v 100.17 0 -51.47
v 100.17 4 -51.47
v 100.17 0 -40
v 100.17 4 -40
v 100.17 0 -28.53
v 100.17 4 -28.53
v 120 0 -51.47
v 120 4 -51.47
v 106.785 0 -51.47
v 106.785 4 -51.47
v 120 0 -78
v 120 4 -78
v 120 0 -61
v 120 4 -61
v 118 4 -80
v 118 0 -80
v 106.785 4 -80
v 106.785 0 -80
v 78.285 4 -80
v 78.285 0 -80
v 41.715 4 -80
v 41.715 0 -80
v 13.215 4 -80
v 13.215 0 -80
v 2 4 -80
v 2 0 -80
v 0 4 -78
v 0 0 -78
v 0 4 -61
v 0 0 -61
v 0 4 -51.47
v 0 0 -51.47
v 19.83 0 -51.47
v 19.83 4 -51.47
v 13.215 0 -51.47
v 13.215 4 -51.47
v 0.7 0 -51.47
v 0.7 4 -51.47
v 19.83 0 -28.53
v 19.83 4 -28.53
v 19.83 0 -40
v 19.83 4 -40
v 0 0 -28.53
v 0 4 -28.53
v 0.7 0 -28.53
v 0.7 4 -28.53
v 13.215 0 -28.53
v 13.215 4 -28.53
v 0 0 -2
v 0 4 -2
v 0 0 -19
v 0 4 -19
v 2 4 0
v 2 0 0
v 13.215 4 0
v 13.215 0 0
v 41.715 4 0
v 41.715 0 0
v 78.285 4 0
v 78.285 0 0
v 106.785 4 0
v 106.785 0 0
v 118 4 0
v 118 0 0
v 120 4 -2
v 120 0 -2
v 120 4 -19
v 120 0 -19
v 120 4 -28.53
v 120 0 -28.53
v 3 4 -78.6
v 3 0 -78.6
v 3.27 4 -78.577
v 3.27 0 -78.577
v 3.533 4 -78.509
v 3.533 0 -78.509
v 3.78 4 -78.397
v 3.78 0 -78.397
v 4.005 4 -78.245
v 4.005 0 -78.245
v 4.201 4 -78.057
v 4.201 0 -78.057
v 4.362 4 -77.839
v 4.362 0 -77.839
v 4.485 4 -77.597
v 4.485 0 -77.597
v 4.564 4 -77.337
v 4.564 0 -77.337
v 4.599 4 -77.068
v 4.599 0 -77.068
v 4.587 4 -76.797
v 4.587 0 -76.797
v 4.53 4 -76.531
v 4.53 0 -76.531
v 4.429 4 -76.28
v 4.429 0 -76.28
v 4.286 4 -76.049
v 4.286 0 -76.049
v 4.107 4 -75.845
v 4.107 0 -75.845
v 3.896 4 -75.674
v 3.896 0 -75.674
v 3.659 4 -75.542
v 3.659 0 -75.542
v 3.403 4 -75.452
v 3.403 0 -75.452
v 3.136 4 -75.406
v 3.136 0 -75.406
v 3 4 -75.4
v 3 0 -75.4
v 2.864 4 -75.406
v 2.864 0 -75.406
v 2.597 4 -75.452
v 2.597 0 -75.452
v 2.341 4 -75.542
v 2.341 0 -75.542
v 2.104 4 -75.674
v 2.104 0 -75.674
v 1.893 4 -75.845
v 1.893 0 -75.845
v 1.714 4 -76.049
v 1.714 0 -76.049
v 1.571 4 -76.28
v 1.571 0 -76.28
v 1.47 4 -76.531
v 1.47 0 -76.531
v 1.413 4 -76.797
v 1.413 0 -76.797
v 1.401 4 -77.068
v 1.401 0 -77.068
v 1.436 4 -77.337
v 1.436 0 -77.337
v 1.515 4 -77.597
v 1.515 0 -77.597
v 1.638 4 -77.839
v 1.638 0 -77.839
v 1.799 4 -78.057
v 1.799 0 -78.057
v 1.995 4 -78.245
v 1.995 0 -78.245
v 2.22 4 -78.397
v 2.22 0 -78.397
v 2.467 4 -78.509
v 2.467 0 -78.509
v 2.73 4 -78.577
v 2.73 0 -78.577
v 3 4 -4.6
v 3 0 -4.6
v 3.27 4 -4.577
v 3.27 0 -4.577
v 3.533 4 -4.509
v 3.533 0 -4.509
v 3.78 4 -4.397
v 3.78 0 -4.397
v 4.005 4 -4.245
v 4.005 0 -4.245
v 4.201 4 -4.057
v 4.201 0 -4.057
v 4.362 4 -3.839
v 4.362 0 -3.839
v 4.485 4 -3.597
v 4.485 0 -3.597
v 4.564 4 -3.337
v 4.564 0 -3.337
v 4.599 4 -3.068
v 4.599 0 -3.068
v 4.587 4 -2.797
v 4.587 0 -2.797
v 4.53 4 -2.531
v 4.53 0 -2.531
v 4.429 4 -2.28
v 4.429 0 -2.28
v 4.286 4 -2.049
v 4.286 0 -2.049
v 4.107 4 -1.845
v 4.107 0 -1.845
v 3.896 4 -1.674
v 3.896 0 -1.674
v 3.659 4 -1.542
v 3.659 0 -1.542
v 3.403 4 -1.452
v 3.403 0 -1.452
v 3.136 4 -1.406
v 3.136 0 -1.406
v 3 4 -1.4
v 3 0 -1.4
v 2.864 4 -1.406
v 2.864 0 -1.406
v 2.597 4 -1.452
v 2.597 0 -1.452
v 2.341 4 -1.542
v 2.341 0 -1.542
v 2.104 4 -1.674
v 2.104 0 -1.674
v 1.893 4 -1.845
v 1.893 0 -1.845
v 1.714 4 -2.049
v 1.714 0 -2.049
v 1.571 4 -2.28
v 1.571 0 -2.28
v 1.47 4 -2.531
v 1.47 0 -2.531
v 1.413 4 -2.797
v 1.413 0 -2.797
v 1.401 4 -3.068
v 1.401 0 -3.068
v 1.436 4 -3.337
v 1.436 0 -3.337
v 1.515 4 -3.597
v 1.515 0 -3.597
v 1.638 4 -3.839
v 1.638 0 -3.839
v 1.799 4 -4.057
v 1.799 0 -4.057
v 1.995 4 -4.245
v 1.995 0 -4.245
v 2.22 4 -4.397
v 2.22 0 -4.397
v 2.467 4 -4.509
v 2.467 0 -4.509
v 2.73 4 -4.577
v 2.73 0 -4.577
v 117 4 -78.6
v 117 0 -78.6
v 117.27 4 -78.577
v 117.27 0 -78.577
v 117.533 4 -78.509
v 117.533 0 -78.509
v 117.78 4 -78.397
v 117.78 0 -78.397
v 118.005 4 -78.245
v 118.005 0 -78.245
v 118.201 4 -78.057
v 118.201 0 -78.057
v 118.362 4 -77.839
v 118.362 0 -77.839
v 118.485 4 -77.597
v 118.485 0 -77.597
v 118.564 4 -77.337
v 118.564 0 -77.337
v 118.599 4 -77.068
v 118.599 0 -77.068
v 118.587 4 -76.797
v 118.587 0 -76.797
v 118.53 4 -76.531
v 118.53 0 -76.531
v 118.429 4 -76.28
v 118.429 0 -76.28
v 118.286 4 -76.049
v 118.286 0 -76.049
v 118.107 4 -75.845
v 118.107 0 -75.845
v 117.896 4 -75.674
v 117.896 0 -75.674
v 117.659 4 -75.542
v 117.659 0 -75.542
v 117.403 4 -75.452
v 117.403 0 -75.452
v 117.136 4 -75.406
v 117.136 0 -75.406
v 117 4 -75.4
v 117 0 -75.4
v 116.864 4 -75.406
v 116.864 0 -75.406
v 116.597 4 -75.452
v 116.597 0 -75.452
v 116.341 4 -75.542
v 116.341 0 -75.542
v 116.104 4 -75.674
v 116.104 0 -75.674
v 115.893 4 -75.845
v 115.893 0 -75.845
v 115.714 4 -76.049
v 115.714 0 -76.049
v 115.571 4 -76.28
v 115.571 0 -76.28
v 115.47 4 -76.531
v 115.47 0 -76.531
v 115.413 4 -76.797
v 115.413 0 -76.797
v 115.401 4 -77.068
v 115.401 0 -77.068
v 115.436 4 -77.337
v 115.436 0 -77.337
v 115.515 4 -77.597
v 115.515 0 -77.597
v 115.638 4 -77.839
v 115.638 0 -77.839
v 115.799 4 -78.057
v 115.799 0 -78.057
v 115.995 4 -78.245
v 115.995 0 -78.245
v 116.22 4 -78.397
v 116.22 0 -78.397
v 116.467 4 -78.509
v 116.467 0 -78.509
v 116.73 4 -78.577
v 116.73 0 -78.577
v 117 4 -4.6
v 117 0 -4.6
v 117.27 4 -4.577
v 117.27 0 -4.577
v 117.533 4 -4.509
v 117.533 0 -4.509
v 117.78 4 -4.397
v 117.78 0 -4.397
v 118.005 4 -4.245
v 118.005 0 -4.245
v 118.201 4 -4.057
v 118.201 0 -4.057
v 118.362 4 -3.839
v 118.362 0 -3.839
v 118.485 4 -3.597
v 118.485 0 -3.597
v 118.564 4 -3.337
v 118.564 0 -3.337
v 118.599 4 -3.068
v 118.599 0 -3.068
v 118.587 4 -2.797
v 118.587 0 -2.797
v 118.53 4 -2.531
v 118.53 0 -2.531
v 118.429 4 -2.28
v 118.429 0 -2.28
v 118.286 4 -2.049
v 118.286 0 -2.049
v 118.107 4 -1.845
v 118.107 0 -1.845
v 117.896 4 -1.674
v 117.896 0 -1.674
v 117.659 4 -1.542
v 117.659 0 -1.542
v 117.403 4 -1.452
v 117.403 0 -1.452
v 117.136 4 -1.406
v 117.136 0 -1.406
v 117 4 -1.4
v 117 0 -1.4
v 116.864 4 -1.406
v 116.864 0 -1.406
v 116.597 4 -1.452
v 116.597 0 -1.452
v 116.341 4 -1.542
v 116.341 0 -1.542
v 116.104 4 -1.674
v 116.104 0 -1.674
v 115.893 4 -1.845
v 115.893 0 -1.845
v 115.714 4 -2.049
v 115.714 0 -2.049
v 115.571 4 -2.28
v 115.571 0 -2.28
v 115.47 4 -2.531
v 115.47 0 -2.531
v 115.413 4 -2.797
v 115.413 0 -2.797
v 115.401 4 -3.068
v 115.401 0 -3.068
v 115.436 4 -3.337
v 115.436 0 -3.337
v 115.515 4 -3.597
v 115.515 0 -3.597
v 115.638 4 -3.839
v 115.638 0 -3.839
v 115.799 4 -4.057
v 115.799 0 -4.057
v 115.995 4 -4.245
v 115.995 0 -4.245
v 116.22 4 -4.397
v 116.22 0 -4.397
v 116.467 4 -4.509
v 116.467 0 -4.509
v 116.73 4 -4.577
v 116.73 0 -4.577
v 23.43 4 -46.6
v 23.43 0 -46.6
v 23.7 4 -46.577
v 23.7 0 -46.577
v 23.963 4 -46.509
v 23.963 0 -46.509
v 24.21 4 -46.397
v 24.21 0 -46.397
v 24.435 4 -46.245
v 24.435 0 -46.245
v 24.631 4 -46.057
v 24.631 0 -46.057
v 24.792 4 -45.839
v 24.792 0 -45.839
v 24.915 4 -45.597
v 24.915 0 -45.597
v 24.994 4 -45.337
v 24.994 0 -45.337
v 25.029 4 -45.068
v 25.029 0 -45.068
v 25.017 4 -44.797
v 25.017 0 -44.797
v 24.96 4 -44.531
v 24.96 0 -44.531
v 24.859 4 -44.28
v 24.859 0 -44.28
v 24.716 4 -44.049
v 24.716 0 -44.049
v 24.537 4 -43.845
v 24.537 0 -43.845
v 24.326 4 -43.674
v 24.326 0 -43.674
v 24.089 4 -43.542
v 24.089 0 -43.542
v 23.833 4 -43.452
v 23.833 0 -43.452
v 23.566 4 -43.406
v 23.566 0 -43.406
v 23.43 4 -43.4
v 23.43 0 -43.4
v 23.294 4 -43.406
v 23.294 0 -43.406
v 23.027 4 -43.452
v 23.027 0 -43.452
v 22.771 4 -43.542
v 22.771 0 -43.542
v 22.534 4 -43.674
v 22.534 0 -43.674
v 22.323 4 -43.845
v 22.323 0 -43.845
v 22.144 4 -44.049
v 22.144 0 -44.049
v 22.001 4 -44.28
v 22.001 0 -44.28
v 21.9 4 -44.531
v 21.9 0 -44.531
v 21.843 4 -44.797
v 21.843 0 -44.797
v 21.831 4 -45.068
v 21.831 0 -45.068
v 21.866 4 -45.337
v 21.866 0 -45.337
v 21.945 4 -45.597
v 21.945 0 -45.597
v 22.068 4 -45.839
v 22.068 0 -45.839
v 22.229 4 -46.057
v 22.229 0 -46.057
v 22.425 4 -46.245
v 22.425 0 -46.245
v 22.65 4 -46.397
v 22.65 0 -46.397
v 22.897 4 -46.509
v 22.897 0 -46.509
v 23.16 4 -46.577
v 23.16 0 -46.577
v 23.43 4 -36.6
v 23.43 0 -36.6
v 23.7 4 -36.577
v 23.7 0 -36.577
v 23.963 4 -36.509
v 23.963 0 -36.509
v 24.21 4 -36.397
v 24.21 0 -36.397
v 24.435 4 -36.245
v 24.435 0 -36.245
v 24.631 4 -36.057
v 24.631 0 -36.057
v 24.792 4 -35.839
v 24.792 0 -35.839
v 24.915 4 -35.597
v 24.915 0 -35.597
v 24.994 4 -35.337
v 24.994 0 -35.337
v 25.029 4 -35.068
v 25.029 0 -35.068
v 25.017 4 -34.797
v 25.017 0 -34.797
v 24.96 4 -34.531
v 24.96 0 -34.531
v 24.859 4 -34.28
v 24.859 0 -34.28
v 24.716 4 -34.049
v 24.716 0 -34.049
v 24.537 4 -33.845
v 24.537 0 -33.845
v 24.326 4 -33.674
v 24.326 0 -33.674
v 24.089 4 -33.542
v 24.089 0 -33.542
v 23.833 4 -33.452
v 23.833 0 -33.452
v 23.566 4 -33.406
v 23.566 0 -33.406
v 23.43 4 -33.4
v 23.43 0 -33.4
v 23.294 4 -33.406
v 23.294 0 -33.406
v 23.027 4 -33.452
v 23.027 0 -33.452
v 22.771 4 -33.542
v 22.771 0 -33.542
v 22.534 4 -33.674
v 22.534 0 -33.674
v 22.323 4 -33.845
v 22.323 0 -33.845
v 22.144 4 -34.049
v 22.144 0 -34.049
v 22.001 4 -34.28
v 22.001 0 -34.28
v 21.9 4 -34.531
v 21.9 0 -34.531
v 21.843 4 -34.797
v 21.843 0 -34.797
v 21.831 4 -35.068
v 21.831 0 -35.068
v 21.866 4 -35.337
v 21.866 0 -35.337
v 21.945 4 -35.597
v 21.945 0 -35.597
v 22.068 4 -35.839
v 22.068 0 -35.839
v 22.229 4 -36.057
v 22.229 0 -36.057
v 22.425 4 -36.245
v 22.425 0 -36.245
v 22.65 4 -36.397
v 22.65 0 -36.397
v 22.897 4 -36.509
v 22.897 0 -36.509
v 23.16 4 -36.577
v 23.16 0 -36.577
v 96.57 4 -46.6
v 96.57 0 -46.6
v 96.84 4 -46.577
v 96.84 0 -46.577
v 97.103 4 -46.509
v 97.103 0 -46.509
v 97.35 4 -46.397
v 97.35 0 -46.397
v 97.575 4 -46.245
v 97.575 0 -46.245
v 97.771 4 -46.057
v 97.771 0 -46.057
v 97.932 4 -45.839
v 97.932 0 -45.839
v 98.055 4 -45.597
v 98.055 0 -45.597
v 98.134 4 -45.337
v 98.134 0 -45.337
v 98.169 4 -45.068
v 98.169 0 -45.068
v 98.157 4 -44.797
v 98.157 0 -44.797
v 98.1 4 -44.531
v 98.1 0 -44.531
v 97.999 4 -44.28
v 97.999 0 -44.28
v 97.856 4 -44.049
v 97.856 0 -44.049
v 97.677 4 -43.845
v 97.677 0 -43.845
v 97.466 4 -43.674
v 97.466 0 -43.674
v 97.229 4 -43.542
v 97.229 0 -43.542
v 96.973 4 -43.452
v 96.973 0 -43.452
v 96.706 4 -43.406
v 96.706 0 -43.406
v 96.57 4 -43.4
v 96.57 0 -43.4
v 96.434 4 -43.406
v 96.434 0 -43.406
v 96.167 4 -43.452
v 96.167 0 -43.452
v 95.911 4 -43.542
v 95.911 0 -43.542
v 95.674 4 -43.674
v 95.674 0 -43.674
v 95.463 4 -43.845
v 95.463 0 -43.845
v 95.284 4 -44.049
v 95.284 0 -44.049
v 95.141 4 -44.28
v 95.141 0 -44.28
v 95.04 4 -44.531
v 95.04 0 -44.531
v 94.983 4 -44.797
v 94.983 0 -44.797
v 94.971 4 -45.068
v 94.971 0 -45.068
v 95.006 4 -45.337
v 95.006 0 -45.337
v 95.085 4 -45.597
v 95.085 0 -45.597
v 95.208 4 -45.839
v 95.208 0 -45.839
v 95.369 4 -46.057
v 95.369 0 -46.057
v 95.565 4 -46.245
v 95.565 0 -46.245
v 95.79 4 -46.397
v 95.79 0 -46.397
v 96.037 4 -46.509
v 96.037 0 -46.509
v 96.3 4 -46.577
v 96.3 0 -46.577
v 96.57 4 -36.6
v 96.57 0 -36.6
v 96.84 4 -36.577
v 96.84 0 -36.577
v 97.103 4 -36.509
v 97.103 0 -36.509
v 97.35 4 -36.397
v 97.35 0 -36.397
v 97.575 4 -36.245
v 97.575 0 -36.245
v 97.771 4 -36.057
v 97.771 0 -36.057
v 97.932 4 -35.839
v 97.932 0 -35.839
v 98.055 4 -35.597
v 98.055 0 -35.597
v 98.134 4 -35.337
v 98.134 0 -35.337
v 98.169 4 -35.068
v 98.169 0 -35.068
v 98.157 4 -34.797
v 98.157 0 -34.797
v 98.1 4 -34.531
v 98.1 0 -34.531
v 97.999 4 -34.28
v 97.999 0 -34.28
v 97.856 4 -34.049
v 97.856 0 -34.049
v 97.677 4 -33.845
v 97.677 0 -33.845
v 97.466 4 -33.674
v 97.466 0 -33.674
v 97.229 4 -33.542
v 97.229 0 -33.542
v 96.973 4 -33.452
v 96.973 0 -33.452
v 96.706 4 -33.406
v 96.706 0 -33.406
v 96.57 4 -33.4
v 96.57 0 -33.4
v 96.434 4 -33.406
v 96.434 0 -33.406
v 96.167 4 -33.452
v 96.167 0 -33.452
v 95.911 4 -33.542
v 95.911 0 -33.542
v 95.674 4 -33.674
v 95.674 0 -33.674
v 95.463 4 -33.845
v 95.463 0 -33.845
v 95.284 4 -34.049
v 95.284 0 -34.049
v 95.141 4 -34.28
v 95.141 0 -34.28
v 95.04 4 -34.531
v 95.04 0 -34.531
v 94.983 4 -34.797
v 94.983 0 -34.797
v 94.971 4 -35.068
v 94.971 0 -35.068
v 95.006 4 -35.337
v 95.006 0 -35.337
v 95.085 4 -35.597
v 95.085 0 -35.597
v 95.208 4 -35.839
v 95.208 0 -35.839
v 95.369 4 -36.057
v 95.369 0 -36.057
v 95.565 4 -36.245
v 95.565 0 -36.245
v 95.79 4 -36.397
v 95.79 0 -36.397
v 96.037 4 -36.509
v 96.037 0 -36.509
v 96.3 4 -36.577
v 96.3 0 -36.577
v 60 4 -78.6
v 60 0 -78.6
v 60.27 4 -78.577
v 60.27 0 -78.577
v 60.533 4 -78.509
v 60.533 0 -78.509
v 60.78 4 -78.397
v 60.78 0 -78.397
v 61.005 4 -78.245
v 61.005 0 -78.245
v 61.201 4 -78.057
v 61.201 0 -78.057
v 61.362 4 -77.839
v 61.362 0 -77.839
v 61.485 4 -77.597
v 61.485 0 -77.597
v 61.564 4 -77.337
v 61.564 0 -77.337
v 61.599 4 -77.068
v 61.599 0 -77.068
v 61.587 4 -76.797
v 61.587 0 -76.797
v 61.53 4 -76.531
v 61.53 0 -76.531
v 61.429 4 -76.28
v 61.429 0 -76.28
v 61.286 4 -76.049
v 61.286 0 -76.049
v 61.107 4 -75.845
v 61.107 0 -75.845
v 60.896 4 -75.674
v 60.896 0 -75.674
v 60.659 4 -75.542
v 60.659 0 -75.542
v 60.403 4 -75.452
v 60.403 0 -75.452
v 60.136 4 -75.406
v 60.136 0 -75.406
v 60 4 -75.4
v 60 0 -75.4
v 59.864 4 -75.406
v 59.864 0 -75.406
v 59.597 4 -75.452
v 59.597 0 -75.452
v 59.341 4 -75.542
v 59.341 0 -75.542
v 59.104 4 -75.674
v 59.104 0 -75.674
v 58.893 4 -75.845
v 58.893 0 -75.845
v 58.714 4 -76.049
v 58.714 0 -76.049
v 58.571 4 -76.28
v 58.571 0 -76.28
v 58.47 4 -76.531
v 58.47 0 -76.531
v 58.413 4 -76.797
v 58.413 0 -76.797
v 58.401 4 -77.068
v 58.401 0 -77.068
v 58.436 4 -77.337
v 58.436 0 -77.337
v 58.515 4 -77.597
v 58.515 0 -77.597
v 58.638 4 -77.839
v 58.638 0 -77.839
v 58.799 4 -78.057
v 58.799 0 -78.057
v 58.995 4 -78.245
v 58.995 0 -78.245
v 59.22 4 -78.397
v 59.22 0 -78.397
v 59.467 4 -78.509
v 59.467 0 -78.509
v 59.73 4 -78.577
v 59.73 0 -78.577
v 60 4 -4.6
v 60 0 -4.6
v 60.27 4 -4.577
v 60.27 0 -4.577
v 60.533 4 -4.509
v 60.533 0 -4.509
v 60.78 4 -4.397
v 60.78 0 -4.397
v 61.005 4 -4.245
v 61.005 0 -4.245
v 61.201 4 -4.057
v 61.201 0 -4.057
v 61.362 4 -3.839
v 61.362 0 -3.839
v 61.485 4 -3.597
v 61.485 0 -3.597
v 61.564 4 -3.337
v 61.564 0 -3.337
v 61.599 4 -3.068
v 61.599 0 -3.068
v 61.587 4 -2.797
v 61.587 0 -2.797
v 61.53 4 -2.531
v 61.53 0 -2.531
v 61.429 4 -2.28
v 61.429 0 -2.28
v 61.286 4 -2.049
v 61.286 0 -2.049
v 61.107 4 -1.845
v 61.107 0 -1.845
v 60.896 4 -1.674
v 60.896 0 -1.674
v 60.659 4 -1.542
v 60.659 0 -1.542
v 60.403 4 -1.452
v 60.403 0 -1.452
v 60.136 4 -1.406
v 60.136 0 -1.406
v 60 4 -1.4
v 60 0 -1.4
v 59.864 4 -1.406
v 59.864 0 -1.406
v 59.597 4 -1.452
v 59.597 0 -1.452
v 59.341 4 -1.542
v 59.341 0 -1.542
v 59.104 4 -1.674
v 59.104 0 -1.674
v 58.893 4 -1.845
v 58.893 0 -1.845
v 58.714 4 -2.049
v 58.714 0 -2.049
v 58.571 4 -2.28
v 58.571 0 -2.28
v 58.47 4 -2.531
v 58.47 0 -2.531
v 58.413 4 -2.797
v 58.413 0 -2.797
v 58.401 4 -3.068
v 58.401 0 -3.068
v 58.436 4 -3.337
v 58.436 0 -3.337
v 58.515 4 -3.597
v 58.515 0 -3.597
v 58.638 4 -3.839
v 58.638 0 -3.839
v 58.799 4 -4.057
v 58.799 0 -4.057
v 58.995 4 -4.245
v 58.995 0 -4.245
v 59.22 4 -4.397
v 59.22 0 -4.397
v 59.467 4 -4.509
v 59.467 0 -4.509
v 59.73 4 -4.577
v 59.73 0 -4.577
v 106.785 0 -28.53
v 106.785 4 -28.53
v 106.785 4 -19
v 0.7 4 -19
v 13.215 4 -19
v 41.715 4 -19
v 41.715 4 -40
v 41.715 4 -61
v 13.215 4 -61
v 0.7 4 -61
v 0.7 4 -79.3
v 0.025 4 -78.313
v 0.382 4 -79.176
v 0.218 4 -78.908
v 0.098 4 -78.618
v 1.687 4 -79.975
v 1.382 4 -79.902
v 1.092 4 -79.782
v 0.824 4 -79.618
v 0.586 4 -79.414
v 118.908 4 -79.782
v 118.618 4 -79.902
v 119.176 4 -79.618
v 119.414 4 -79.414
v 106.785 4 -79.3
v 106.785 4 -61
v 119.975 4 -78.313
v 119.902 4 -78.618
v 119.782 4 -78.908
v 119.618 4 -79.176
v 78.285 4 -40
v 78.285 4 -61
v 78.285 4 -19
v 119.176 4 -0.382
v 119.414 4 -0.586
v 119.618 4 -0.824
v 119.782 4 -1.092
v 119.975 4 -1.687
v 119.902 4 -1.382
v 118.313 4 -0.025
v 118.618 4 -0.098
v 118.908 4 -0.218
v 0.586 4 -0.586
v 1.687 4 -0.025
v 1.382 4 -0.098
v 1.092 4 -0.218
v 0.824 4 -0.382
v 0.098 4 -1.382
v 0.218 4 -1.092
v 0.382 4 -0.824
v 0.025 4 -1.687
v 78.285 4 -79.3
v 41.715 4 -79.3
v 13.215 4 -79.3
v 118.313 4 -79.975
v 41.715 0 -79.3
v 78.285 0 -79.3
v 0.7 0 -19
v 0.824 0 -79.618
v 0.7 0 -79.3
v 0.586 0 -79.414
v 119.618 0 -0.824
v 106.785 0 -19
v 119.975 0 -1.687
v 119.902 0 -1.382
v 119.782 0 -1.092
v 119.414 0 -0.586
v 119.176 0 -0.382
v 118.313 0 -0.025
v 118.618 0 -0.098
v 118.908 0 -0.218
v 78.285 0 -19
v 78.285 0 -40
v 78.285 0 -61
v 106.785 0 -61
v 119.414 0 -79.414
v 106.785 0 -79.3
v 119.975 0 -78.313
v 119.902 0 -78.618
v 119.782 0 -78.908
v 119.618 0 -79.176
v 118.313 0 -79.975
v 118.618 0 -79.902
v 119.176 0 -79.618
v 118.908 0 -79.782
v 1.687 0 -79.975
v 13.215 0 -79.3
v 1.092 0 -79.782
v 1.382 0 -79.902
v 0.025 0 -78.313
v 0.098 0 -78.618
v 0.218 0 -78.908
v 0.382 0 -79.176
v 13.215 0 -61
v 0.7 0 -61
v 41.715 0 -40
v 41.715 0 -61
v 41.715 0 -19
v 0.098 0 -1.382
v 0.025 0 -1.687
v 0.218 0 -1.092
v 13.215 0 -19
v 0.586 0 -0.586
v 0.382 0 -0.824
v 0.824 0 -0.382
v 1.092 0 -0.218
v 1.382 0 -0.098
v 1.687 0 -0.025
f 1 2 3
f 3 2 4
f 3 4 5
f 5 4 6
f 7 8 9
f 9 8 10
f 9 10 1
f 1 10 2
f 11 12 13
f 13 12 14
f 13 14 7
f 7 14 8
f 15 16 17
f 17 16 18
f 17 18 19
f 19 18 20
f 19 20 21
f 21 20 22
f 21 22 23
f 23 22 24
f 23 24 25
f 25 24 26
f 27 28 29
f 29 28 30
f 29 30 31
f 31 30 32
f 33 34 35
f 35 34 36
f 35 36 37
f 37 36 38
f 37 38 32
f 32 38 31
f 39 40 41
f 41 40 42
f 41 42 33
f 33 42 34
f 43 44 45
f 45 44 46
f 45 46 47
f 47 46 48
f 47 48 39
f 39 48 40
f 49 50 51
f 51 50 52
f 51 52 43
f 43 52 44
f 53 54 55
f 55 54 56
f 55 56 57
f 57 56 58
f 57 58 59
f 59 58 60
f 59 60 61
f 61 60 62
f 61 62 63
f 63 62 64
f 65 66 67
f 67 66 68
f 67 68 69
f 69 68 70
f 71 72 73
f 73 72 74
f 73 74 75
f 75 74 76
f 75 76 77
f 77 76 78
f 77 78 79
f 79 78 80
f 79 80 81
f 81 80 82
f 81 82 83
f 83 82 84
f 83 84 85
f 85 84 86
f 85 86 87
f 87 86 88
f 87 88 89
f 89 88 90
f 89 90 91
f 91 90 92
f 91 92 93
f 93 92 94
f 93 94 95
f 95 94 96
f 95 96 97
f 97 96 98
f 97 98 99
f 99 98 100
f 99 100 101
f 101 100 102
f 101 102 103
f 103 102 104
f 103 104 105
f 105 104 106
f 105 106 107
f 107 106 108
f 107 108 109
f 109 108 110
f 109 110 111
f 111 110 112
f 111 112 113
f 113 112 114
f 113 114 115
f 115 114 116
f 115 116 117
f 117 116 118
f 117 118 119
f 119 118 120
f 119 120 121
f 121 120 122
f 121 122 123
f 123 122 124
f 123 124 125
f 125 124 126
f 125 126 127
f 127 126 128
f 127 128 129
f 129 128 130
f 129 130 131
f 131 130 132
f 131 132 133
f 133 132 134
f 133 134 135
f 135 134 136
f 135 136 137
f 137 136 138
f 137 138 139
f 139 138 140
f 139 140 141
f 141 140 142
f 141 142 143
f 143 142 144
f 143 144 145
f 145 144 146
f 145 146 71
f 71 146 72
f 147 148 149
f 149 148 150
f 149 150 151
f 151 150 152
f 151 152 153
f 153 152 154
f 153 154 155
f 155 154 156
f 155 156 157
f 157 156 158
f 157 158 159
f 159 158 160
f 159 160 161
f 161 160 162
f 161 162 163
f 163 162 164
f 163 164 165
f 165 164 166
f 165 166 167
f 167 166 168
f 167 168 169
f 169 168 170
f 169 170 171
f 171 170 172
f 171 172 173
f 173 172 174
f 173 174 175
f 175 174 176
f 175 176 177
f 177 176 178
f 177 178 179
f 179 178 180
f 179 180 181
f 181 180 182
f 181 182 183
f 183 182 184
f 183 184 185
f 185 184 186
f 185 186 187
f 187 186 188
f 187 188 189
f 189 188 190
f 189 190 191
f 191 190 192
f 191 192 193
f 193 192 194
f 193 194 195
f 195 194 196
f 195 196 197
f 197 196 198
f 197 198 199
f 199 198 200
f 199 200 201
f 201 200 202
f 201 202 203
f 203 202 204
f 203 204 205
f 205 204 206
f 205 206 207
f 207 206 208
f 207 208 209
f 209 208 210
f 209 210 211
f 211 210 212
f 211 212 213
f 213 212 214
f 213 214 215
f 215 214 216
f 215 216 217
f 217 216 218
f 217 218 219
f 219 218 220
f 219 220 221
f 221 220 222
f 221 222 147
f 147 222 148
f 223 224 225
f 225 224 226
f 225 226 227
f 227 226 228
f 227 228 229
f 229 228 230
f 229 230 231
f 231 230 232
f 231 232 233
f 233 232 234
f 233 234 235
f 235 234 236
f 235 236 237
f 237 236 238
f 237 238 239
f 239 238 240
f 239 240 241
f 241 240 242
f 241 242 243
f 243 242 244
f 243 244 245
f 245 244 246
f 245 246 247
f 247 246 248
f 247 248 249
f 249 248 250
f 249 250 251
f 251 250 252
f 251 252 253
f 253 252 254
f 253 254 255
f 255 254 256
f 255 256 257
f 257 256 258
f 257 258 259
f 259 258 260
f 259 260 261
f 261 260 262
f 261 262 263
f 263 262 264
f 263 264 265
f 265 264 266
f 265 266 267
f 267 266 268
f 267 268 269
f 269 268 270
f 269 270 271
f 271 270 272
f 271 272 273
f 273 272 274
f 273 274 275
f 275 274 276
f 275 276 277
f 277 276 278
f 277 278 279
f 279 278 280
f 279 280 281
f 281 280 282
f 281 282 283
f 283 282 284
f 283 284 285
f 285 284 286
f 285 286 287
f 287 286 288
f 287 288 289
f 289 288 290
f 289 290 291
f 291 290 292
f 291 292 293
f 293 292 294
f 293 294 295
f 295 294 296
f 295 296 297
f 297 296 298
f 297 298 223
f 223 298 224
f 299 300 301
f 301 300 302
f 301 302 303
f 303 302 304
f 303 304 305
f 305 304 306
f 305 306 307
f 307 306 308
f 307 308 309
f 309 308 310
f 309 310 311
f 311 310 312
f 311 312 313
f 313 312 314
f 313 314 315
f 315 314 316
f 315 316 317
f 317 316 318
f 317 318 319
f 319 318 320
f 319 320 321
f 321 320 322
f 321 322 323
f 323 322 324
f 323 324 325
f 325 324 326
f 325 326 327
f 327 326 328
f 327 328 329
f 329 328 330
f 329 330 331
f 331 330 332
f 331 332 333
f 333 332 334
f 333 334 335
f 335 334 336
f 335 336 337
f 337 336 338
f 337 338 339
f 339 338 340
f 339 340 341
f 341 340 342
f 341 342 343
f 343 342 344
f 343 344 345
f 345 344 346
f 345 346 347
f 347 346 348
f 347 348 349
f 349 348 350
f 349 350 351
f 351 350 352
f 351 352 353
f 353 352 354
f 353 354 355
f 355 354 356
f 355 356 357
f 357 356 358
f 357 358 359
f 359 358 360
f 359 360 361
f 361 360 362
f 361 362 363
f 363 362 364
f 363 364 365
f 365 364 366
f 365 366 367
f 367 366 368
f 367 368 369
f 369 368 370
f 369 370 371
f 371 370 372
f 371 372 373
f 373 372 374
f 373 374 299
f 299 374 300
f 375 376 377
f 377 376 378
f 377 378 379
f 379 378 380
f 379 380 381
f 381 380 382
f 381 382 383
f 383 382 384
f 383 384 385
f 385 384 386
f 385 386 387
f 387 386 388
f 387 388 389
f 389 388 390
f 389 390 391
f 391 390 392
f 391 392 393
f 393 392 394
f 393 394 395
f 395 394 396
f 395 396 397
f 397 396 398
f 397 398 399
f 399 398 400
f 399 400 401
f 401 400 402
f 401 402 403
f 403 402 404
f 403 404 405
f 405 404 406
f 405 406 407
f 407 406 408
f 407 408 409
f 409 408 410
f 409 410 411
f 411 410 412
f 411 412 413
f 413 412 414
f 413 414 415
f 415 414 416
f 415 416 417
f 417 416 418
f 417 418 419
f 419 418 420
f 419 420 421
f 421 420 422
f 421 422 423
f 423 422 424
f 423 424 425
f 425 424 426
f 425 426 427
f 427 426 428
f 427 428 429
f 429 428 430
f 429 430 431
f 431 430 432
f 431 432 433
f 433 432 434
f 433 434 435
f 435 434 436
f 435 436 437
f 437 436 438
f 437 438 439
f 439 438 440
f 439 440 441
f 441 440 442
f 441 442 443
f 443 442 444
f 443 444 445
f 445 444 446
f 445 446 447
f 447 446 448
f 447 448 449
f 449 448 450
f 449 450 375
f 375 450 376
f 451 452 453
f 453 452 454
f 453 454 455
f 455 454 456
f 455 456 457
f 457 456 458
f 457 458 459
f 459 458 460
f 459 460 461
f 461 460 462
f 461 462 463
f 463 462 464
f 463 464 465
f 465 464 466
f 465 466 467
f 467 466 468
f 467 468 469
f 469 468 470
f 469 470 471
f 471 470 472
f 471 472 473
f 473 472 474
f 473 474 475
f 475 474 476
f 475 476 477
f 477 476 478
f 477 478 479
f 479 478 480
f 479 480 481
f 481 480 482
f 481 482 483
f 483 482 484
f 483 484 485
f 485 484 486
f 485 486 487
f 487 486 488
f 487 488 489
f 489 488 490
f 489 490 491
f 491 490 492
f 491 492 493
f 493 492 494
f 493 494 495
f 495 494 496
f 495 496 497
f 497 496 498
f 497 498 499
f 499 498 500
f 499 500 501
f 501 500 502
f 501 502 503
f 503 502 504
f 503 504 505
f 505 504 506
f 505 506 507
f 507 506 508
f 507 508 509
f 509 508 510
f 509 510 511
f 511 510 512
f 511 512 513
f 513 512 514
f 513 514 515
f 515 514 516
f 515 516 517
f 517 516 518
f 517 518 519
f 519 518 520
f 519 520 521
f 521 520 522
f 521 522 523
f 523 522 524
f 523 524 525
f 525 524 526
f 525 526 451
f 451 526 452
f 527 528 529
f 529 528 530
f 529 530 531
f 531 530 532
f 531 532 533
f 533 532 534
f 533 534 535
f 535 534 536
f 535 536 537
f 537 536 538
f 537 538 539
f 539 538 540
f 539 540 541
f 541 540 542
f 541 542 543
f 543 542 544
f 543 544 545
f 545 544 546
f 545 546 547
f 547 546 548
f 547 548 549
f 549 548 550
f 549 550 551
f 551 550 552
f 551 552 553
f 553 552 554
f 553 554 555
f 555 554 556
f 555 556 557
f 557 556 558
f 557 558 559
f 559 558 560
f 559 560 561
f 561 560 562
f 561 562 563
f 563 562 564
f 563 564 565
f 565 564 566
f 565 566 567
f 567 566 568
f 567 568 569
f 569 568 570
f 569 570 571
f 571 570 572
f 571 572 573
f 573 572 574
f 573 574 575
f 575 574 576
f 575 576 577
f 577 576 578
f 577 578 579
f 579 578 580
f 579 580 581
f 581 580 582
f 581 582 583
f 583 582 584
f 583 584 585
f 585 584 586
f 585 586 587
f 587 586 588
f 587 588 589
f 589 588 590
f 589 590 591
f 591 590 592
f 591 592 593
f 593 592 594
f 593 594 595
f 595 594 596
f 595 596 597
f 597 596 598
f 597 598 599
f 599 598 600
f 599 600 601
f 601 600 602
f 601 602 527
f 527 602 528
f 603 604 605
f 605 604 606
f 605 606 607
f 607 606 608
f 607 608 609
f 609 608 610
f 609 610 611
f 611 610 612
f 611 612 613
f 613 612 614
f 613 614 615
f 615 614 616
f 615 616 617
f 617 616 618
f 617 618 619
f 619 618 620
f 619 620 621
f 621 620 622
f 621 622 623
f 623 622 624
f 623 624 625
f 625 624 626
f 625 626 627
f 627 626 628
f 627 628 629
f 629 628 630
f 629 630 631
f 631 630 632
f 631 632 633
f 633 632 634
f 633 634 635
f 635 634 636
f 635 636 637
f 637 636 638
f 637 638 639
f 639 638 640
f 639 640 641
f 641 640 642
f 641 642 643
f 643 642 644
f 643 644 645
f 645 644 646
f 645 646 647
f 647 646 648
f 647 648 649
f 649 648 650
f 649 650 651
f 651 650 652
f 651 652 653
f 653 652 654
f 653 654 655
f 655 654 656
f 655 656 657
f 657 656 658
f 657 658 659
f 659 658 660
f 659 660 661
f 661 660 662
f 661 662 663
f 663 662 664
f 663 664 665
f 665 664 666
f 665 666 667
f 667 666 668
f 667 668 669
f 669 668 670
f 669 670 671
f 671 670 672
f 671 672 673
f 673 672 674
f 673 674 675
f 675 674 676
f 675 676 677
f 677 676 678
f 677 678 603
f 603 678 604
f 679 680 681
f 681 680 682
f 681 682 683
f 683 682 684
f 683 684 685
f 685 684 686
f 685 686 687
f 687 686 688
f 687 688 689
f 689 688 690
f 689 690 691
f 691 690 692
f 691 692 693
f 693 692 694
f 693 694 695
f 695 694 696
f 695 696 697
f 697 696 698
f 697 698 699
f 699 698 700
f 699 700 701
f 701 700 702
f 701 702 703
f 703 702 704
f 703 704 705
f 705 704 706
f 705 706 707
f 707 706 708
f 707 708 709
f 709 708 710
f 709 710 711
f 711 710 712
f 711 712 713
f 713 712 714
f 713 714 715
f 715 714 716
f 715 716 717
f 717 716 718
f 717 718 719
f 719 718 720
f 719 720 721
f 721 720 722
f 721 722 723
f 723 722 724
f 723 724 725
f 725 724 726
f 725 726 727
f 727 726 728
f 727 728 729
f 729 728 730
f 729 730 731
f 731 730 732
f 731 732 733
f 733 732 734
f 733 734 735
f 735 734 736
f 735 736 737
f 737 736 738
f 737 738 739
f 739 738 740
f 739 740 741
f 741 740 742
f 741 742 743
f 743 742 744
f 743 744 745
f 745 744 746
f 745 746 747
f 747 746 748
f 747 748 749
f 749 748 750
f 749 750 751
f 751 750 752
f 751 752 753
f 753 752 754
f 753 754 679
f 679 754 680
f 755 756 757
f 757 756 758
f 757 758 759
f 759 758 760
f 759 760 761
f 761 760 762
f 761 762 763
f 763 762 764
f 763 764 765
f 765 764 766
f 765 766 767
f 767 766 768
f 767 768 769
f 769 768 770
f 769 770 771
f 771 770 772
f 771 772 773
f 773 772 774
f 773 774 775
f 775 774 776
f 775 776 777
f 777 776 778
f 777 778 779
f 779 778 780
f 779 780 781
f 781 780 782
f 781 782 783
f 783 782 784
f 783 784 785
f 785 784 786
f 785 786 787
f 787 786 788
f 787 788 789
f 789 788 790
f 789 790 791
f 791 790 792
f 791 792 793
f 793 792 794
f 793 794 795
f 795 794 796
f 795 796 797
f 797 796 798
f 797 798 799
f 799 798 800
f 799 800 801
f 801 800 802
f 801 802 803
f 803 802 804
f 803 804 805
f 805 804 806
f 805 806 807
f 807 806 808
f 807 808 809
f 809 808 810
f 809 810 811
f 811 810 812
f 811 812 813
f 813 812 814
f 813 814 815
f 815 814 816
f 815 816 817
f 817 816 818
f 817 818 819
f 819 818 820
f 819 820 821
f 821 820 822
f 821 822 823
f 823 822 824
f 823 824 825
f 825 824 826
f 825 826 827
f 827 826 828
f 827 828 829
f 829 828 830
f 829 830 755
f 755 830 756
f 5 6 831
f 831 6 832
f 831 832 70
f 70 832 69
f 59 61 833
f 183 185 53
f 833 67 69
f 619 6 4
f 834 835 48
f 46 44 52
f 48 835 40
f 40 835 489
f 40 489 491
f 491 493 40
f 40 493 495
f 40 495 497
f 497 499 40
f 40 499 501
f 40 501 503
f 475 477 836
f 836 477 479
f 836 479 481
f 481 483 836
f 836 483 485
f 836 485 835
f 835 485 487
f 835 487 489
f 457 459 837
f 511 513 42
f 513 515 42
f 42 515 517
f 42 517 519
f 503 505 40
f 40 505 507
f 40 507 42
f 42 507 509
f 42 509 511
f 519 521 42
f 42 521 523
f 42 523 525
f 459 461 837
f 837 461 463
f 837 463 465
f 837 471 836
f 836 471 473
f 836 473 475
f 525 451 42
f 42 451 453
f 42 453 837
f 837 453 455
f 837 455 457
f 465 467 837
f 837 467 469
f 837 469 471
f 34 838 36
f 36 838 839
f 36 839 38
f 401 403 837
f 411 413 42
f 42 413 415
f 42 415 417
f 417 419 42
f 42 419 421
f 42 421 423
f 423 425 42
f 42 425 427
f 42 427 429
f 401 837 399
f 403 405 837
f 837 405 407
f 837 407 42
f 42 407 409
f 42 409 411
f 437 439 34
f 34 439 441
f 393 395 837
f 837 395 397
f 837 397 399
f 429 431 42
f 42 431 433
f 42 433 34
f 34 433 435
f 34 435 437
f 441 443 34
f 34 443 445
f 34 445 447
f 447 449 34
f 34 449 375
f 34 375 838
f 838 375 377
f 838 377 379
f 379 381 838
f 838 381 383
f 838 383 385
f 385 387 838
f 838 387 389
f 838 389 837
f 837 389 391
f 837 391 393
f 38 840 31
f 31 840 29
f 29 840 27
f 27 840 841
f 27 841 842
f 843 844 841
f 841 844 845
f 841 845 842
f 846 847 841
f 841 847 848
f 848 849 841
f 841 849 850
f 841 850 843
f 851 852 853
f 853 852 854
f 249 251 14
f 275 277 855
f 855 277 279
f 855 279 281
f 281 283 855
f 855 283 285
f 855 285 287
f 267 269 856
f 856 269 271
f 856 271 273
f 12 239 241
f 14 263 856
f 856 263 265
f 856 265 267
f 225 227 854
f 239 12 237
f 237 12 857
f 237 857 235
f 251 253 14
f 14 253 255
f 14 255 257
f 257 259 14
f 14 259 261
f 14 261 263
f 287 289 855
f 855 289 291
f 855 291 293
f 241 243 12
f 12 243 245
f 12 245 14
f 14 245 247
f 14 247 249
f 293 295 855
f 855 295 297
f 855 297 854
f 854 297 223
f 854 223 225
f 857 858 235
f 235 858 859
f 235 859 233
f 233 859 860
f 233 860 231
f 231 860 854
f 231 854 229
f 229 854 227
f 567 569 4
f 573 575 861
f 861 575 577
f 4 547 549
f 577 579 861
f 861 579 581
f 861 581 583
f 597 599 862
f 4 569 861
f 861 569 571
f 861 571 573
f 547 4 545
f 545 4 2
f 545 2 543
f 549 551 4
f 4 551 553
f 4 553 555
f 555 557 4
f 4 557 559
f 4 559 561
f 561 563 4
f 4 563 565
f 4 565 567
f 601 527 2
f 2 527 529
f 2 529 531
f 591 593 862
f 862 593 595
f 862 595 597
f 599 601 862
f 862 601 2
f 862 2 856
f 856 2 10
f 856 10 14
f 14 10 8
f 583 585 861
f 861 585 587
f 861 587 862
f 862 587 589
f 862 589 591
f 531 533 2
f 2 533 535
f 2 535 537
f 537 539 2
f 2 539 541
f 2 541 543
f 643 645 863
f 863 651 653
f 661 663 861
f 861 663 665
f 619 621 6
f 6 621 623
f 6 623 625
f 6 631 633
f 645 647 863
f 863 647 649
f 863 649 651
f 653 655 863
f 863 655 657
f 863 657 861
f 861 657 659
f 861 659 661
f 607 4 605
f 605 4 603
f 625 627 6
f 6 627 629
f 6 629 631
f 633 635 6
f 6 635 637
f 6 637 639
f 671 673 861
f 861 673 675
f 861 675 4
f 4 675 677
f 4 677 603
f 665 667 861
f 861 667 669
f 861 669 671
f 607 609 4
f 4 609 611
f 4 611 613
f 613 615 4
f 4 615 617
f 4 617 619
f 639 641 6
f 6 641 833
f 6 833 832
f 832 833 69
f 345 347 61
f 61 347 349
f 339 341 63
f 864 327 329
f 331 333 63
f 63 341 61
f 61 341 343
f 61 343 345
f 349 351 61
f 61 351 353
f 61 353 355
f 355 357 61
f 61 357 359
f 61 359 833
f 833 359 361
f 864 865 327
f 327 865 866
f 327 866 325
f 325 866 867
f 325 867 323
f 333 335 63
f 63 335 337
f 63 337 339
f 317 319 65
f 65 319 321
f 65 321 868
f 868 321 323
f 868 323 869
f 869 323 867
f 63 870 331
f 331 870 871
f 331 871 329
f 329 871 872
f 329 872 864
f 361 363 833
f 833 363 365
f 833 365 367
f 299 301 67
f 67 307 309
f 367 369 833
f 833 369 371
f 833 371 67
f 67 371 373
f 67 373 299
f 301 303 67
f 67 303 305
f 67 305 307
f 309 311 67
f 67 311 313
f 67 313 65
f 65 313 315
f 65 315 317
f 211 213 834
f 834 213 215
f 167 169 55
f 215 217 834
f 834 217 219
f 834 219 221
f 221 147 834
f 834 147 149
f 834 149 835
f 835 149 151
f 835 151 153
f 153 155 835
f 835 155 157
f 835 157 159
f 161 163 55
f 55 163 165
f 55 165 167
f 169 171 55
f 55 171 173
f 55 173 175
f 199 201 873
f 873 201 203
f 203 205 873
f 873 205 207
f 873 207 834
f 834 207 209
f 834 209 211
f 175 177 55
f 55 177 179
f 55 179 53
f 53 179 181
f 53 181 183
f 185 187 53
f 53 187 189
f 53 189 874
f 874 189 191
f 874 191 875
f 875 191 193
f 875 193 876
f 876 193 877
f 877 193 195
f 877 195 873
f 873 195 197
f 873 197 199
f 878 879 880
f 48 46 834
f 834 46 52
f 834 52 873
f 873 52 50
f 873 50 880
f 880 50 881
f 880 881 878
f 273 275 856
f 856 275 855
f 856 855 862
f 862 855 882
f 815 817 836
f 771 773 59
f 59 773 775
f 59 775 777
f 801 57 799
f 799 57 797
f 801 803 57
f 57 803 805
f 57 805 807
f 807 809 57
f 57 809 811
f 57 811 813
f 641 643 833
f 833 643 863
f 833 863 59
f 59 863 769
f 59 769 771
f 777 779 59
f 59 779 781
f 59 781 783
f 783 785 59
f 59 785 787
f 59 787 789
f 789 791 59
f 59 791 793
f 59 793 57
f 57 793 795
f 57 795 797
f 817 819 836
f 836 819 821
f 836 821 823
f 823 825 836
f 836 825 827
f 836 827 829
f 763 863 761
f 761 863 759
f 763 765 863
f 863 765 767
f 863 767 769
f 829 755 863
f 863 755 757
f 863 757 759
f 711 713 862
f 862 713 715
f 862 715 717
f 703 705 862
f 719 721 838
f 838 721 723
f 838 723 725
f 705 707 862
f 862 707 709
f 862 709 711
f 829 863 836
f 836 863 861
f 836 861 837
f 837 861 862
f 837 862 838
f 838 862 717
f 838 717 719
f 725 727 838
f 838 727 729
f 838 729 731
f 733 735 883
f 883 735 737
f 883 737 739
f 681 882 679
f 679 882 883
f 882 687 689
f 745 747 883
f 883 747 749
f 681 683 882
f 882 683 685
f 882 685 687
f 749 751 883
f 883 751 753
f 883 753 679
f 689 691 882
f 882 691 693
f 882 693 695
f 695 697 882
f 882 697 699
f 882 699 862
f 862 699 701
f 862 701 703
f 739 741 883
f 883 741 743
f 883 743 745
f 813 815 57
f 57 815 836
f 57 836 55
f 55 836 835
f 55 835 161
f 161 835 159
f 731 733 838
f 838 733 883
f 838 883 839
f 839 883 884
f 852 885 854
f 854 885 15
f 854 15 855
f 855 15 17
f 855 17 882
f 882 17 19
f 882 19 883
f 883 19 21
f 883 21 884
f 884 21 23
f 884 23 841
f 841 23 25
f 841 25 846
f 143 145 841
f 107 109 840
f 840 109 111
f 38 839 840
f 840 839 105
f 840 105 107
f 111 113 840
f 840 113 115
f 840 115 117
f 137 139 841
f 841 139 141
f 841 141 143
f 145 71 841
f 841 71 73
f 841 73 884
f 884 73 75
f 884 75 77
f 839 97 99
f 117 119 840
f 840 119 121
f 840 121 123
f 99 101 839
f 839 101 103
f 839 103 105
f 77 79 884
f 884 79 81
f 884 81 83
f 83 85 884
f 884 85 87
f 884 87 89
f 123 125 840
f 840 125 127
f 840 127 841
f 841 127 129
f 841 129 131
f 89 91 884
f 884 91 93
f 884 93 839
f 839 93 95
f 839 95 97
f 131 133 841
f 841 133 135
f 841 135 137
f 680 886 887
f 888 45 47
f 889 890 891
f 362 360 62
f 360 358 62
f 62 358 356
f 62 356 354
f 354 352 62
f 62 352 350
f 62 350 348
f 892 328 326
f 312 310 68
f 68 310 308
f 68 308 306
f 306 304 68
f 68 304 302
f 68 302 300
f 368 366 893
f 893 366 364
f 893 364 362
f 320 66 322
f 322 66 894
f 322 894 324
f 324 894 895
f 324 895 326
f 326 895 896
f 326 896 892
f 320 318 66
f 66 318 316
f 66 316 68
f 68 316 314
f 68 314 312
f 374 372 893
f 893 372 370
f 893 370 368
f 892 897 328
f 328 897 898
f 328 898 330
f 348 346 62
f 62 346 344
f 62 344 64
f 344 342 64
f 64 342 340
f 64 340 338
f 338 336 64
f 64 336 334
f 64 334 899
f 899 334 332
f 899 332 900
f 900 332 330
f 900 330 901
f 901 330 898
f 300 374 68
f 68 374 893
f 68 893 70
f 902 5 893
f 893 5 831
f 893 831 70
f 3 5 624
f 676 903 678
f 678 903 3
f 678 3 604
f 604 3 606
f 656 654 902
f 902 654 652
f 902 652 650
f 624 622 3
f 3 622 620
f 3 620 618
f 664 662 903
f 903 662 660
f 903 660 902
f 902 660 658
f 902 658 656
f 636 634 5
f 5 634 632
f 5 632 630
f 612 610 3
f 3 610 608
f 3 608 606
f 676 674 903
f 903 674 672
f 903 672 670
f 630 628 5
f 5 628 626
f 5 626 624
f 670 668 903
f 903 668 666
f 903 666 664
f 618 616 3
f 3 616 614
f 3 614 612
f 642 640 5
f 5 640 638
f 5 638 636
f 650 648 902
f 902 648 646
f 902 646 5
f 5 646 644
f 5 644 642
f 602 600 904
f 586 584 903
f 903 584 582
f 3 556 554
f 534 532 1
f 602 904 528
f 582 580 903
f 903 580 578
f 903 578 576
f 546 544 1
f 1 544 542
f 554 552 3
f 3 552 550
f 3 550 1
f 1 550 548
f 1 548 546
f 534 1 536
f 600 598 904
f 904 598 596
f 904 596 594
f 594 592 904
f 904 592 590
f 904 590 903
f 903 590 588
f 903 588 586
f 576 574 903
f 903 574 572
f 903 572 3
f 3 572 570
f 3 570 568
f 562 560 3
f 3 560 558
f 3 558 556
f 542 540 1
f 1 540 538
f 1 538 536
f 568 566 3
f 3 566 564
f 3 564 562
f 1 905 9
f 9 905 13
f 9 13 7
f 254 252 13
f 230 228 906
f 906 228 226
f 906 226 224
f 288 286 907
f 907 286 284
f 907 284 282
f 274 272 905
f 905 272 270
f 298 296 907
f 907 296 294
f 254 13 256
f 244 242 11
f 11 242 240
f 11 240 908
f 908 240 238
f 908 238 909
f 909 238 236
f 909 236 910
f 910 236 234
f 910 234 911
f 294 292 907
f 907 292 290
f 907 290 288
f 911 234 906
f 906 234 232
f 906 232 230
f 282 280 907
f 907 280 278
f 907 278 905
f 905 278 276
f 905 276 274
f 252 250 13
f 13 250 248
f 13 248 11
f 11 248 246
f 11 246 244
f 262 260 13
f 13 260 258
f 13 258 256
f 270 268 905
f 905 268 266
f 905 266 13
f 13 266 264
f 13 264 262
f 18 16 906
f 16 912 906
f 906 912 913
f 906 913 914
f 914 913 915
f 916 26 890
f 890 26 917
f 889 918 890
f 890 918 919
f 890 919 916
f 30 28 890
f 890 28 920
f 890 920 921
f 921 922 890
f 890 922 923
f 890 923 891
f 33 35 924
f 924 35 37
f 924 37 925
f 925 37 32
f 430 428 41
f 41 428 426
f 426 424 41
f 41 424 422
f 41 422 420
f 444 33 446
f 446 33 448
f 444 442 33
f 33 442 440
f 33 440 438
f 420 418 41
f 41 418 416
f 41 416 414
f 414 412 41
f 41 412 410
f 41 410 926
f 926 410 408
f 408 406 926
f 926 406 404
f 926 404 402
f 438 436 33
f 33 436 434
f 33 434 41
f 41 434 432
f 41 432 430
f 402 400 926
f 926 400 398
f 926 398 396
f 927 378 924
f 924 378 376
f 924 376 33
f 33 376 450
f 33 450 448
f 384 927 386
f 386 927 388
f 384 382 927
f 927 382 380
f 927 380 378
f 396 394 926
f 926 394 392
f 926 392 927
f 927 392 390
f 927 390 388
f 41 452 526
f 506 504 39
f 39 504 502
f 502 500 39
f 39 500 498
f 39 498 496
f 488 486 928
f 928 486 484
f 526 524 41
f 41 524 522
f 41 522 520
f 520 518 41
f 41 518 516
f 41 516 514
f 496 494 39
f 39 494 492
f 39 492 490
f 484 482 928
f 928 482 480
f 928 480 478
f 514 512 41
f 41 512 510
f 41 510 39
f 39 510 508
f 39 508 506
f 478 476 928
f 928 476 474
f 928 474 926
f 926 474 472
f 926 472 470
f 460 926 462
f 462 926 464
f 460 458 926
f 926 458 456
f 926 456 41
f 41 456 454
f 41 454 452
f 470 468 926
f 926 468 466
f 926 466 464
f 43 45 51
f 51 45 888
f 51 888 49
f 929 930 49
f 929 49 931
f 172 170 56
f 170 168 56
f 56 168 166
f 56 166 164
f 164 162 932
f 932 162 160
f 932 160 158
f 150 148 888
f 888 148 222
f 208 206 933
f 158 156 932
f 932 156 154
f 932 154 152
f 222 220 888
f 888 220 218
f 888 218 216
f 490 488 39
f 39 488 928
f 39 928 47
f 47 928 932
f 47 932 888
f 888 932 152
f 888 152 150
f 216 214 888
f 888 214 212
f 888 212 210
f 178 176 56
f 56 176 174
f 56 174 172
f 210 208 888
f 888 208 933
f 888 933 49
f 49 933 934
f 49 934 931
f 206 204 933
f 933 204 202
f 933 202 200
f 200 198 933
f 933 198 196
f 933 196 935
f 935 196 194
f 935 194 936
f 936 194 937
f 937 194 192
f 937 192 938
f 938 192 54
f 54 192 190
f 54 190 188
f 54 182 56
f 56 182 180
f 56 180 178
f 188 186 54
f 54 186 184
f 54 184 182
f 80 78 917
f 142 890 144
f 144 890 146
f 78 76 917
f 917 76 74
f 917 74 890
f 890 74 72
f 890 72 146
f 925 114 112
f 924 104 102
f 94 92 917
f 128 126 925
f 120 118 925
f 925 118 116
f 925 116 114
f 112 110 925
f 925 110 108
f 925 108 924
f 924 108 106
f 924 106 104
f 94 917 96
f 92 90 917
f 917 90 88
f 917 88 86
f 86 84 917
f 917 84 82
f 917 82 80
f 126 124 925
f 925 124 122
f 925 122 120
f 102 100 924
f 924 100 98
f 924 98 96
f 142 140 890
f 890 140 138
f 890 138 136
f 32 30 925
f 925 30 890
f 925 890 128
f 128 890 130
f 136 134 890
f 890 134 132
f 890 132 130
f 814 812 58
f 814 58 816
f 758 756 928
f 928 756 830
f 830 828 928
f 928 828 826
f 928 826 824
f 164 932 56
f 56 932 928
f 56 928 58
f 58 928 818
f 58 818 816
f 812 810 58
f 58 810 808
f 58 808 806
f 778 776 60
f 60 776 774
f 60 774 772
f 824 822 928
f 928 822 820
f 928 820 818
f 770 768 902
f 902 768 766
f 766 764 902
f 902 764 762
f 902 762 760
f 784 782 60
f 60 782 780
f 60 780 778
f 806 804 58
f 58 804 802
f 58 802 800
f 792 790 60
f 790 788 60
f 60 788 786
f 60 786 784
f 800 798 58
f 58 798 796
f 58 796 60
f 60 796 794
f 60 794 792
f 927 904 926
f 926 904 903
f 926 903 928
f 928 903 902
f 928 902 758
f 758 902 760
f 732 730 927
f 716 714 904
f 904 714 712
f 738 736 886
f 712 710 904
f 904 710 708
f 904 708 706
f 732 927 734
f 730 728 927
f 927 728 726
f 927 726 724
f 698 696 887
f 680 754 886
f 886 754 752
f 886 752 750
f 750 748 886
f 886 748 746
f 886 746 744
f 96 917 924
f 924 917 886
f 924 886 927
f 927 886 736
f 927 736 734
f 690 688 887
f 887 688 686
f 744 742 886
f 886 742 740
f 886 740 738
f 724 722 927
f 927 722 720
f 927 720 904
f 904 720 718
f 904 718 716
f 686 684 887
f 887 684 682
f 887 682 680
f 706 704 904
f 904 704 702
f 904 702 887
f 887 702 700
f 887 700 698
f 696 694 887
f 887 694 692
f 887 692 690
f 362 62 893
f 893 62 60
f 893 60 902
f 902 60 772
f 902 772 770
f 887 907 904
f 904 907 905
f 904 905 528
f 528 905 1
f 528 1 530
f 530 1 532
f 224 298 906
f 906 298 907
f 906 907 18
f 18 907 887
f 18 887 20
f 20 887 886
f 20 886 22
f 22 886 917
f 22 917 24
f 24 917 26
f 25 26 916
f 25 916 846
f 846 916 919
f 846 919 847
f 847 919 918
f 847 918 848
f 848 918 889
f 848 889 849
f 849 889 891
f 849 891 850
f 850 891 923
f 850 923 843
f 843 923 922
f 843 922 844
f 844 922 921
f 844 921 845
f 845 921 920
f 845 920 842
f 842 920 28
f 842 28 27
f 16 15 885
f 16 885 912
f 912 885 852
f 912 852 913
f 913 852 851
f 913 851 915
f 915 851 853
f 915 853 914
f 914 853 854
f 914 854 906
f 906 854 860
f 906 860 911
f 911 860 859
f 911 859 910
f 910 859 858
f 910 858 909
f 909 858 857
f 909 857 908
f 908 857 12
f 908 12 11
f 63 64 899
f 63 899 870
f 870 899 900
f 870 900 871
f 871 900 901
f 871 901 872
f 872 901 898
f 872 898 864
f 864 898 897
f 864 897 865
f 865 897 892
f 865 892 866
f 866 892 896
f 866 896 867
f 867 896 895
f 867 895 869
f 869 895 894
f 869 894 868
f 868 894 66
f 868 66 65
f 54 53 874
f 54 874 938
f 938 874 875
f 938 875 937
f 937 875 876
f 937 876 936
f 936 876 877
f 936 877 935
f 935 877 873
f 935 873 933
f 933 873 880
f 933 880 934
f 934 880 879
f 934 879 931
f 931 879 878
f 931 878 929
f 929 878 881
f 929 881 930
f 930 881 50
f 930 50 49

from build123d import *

# Parameters (mm, degrees)
SKETCH2_R           = 1.6
BOSS_EXTRUDE2_DEPTH = 4
FILLET1_R           = 2
FILLET2_R           = 2
FILLET3_R           = 2
FILLET4_R           = 2


with BuildPart() as part:
    # Sketch2 → Boss-Extrude2 (new body)
    with BuildSketch(Plane(origin=(0, 0, 0), x_dir=(1, 0, 0), z_dir=(0, 1, 0))):
        Polygon((0, 28.53), (0, 0), (120, 0), (120, 28.53), (100.17, 28.53), (100.17, 51.47), (120, 51.47), (120, 80), (0, 80), (0, 51.47), (19.83, 51.47), (19.83, 28.53), align=None)
        with Locations((3, 3)):
            Circle(SKETCH2_R, mode=Mode.SUBTRACT)
        with Locations((23.43, 35)):
            Circle(SKETCH2_R, mode=Mode.SUBTRACT)
        with Locations((60, 3)):
            Circle(SKETCH2_R, mode=Mode.SUBTRACT)
        with Locations((117, 3)):
            Circle(SKETCH2_R, mode=Mode.SUBTRACT)
        with Locations((96.57, 35)):
            Circle(SKETCH2_R, mode=Mode.SUBTRACT)
        with Locations((23.43, 45)):
            Circle(SKETCH2_R, mode=Mode.SUBTRACT)
        with Locations((3, 77)):
            Circle(SKETCH2_R, mode=Mode.SUBTRACT)
        with Locations((96.57, 45)):
            Circle(SKETCH2_R, mode=Mode.SUBTRACT)
        with Locations((60, 77)):
            Circle(SKETCH2_R, mode=Mode.SUBTRACT)
        with Locations((117, 77)):
            Circle(SKETCH2_R, mode=Mode.SUBTRACT)
    extrude(amount=BOSS_EXTRUDE2_DEPTH)

    # Fillet1
    fillet1_edges = [part.edges().sort_by_distance(p)[0] for p in [
        (0, 2, -80),
    ]]
    fillet(fillet1_edges, radius=FILLET1_R)

    # Fillet2
    fillet2_edges = [part.edges().sort_by_distance(p)[0] for p in [
        (120, 2, -80),
    ]]
    fillet(fillet2_edges, radius=FILLET2_R)

    # Fillet3
    fillet3_edges = [part.edges().sort_by_distance(p)[0] for p in [
        (120, 2, 0),
    ]]
    fillet(fillet3_edges, radius=FILLET3_R)

    # Fillet4
    fillet4_edges = [part.edges().sort_by_distance(p)[0] for p in [
        (0, 2, 0),
    ]]
    fillet(fillet4_edges, radius=FILLET4_R)


solid = part.part
